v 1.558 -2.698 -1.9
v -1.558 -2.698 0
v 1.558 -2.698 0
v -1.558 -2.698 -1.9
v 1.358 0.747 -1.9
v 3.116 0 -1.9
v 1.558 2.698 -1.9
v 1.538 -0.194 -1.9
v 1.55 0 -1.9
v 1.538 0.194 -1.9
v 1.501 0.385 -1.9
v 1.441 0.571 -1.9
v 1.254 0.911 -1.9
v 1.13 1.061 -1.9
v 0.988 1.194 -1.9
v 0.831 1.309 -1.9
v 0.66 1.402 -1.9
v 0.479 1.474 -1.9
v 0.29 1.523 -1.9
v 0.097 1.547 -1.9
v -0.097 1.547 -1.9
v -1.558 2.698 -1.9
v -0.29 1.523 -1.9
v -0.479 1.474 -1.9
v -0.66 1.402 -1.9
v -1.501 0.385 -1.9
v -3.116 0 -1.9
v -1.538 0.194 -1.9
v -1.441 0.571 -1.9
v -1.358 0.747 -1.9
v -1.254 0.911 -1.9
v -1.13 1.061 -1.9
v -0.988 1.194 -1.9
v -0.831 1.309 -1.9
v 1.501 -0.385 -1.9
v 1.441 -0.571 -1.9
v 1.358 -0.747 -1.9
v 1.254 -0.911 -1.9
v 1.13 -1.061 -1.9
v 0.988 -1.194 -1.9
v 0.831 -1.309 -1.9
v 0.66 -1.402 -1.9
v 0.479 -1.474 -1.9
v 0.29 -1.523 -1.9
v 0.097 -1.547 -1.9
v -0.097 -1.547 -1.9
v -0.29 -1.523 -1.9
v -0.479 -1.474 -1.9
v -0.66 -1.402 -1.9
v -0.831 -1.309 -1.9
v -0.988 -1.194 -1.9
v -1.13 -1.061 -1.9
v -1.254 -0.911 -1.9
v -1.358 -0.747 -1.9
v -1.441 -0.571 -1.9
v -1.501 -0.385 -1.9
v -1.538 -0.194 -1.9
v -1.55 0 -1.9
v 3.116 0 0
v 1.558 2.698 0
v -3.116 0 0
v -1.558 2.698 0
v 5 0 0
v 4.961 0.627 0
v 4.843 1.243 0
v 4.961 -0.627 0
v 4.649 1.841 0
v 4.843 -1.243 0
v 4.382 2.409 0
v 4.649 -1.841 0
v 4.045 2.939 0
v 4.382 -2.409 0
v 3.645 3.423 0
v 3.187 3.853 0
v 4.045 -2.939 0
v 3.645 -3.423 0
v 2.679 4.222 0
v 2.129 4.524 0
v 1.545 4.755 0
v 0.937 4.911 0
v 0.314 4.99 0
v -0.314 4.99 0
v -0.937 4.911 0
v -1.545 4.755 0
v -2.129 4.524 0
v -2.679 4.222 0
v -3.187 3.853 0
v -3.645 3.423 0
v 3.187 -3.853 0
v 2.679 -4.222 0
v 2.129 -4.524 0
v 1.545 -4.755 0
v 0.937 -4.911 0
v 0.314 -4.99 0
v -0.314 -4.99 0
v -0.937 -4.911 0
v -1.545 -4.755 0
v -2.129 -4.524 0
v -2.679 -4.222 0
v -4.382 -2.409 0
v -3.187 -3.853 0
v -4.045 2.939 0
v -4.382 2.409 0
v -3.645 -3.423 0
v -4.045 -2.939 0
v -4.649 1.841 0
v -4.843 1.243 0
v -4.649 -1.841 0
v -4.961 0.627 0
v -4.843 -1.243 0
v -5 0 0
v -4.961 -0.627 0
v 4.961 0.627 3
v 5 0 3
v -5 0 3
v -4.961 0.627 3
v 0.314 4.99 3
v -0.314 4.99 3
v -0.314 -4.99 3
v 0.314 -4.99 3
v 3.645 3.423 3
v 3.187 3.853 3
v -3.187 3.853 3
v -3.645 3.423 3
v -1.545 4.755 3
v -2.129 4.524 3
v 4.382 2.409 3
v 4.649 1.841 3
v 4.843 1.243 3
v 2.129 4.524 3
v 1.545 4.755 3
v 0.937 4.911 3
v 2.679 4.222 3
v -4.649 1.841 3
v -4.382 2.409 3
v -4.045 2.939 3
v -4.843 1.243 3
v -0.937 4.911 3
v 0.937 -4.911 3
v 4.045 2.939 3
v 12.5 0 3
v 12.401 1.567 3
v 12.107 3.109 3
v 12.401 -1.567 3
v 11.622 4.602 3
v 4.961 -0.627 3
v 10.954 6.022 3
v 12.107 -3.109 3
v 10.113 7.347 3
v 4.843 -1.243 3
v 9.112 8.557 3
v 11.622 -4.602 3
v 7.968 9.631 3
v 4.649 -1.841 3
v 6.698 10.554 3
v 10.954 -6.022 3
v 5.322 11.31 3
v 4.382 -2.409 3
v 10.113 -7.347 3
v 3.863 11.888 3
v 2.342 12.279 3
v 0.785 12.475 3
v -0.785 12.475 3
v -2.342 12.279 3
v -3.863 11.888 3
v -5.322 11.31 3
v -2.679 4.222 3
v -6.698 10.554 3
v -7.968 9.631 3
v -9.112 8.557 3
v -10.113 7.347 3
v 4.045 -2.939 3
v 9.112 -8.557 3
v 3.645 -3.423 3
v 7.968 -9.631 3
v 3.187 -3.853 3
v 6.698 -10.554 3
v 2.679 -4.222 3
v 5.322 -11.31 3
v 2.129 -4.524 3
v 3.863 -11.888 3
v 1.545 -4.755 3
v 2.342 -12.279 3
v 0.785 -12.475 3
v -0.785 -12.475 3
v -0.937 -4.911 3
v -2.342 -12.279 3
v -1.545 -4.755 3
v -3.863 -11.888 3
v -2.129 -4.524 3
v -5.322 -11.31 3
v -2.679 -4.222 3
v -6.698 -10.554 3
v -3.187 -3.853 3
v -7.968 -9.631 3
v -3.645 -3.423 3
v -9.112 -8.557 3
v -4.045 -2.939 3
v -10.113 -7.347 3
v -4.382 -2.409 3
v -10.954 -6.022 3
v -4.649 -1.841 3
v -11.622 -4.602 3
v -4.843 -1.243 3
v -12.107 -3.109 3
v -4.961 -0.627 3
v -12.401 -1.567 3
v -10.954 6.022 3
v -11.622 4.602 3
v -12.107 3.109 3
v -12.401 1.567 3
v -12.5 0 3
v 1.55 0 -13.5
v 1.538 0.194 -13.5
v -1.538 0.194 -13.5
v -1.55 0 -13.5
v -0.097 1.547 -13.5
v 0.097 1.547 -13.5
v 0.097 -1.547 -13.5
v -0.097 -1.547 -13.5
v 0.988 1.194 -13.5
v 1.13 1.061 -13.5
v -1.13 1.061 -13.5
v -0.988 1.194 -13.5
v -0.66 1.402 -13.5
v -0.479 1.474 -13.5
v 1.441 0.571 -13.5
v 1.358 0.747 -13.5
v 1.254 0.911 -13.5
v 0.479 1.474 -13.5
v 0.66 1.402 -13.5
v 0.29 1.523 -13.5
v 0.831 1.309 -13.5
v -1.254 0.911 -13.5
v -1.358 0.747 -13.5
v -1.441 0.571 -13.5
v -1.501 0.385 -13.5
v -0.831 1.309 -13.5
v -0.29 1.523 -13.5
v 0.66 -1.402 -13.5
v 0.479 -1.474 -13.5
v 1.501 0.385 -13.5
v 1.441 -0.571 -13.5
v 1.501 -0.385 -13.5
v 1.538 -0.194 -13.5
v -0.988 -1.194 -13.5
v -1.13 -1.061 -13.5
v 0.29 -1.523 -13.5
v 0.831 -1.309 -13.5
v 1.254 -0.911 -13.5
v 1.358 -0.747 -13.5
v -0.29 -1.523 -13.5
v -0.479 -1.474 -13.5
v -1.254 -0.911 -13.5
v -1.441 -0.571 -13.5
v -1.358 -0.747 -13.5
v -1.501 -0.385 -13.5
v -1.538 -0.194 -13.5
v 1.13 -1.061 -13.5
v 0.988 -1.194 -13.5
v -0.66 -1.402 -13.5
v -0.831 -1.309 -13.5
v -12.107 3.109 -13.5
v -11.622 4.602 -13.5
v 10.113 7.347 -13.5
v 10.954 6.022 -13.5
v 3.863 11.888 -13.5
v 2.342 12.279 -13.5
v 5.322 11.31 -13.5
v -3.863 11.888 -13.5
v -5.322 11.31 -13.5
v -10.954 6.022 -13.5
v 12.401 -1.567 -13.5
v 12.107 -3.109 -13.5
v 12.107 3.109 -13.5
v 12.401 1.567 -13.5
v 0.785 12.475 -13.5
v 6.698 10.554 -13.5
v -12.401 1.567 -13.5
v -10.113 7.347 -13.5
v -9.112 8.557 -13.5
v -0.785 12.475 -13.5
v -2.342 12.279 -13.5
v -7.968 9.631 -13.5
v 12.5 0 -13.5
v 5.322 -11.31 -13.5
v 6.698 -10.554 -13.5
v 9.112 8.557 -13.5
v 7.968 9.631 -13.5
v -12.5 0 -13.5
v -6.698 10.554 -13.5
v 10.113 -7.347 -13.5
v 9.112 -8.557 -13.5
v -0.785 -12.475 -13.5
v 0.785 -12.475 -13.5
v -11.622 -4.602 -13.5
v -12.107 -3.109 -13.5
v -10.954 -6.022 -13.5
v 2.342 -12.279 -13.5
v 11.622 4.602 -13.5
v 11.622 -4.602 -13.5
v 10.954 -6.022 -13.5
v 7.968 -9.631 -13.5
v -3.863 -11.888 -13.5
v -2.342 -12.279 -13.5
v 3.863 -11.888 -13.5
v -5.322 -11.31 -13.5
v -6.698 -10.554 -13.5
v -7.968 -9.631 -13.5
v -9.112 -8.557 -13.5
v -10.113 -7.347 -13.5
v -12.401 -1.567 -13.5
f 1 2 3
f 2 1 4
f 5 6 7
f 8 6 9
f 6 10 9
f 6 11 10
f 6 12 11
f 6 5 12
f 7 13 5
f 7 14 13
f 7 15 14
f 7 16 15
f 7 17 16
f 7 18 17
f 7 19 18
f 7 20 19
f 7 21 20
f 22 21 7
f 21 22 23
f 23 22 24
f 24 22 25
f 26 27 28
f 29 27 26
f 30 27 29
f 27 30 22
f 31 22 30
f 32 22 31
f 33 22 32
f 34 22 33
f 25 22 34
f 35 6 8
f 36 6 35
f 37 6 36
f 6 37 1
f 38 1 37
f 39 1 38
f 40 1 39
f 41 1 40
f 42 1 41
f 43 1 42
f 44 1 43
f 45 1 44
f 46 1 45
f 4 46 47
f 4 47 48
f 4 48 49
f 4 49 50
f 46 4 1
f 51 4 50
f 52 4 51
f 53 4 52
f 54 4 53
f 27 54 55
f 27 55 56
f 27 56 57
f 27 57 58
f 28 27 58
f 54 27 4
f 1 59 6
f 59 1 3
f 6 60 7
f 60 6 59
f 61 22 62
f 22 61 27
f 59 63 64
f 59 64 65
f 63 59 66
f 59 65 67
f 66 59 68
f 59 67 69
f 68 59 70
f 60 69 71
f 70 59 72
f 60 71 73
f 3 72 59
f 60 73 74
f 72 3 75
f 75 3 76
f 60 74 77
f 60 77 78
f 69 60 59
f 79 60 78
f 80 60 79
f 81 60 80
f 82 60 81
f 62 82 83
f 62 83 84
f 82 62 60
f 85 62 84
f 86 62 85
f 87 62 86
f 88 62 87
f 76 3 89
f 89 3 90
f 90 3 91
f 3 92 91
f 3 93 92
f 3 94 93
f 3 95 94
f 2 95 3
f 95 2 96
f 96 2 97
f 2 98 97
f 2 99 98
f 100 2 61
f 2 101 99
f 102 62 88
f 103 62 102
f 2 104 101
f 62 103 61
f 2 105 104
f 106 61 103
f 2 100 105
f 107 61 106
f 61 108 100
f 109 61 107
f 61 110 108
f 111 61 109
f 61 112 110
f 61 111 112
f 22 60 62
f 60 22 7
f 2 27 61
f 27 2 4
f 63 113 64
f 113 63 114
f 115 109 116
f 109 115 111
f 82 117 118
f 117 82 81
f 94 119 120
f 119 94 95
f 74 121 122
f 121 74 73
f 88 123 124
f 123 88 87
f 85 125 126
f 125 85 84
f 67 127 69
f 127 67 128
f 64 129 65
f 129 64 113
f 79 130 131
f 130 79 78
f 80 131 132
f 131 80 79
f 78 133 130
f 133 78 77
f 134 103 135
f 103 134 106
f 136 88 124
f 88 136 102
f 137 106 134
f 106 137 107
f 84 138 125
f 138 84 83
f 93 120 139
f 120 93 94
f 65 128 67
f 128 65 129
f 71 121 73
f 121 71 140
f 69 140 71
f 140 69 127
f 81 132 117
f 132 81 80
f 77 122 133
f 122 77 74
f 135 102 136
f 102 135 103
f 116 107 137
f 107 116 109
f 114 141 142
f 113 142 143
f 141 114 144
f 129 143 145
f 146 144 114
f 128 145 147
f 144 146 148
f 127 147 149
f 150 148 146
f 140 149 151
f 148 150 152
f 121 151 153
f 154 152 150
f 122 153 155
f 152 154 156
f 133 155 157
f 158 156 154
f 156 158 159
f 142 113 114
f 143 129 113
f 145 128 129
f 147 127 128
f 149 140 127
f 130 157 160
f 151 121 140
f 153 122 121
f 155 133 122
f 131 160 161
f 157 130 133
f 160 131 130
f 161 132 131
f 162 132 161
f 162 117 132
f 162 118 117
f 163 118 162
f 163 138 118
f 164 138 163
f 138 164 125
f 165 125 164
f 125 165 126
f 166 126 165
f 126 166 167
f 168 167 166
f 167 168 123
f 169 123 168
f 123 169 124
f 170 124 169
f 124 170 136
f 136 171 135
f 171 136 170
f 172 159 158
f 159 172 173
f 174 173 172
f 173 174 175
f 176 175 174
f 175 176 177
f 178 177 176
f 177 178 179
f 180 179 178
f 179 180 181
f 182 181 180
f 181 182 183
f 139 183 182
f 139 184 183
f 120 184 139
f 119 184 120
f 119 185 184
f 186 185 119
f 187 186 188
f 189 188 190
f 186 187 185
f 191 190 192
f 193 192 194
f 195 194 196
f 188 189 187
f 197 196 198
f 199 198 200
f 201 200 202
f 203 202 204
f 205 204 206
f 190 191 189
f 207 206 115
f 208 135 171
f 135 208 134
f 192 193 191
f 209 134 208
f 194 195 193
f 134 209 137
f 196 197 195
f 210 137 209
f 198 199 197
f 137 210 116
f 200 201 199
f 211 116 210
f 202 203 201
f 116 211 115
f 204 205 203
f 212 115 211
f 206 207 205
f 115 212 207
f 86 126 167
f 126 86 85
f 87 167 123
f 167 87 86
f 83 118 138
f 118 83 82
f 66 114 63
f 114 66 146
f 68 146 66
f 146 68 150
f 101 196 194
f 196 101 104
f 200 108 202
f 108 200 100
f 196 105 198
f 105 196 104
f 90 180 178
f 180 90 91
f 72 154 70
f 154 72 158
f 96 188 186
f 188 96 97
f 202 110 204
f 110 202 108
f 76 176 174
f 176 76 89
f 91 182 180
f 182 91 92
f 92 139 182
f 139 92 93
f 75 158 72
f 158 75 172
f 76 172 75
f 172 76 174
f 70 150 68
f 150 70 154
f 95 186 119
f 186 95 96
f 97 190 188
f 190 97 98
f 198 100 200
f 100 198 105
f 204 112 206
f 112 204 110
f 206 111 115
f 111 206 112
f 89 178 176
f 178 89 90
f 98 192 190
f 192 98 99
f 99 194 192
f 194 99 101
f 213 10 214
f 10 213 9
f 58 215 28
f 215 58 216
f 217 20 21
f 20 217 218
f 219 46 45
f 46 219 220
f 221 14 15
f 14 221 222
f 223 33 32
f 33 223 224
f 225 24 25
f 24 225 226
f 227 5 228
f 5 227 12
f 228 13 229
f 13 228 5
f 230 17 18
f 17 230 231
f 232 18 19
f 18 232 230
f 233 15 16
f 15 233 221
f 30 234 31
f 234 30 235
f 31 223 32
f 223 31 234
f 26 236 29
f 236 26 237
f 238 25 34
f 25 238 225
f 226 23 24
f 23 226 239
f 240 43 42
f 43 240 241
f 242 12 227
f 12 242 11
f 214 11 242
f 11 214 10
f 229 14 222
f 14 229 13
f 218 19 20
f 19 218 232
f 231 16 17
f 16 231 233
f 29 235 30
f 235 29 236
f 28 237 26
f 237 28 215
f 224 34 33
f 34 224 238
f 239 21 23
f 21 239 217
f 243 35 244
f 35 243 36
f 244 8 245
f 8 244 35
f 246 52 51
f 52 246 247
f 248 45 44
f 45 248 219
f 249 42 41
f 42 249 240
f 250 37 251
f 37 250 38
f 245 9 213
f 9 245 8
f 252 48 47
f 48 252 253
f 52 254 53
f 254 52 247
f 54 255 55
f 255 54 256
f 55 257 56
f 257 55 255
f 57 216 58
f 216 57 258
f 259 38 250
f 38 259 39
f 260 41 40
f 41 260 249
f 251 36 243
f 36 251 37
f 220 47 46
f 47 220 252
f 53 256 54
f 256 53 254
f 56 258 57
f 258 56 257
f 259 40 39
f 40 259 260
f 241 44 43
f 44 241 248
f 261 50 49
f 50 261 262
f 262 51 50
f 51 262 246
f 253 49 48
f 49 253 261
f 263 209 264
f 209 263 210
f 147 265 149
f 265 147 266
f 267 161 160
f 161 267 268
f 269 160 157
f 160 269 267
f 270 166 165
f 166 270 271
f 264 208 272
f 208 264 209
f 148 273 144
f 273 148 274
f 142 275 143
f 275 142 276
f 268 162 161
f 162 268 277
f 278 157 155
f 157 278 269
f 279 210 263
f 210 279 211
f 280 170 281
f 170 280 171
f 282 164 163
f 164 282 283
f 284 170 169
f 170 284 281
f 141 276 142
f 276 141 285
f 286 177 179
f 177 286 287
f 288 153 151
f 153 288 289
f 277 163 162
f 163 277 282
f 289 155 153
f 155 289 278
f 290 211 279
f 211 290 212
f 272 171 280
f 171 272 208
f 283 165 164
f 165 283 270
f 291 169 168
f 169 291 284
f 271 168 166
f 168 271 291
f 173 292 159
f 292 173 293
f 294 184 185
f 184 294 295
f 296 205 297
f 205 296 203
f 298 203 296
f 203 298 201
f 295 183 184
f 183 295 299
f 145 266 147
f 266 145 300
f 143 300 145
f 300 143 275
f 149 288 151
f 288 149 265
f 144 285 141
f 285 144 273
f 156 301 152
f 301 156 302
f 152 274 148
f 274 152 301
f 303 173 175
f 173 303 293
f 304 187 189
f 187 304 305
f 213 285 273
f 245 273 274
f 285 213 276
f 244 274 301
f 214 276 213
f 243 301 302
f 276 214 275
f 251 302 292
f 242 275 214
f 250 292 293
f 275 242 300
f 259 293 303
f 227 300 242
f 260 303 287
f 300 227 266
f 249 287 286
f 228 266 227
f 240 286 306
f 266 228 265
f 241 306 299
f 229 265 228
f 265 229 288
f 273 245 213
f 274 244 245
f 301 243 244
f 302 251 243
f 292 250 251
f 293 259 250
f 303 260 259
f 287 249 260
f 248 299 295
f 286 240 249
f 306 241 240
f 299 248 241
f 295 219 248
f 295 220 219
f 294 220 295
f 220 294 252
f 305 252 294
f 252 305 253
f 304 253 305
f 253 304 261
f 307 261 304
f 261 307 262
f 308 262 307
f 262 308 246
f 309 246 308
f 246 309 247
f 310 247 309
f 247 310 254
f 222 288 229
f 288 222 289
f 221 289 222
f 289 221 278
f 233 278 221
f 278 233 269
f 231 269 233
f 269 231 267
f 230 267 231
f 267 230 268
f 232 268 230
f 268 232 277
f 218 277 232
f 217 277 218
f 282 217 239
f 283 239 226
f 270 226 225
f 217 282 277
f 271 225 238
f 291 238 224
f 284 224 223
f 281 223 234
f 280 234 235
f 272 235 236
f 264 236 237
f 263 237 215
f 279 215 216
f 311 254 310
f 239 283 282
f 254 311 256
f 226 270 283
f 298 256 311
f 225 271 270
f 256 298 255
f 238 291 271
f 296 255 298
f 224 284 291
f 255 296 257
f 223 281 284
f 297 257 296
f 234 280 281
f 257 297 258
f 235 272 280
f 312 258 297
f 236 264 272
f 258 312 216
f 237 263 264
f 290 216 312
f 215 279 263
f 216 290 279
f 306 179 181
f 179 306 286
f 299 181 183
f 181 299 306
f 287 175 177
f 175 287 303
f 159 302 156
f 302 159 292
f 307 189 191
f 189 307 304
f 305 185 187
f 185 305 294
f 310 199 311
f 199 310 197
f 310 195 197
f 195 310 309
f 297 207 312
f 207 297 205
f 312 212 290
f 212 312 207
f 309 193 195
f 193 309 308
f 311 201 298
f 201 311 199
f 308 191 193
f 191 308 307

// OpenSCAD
$fn = 50;

difference() {
	union() {
		translate(v = [0, 0, -13.5]) {
			cylinder(h = 16.5, r = 12.5);
		}
	}
	union() {
		translate(v = [0, 0, 0]) {
			rotate(a = [0, 0, 0]) {
				difference() {
					union() {
						translate(v = [0, 0, -1.9]) {
							linear_extrude(height = 1.9) {
								polygon(points = [[3.1158, 0.0], [1.5579000000000005, 2.698361953111554], [-1.5578999999999994, 2.6983619531115544], [-3.1158, 3.815754496783323e-16], [-1.5579000000000014, -2.6983619531115535], [1.557899999999998, -2.6983619531115552]]);
							}
						}
					}
					union();
				}
			}
		}
		#cylinder(h = 3, r = 5.0);
		#translate(v = [0, 0, -100.0]) {
			cylinder(h = 200, r = 1.55);
		}
	}
}
